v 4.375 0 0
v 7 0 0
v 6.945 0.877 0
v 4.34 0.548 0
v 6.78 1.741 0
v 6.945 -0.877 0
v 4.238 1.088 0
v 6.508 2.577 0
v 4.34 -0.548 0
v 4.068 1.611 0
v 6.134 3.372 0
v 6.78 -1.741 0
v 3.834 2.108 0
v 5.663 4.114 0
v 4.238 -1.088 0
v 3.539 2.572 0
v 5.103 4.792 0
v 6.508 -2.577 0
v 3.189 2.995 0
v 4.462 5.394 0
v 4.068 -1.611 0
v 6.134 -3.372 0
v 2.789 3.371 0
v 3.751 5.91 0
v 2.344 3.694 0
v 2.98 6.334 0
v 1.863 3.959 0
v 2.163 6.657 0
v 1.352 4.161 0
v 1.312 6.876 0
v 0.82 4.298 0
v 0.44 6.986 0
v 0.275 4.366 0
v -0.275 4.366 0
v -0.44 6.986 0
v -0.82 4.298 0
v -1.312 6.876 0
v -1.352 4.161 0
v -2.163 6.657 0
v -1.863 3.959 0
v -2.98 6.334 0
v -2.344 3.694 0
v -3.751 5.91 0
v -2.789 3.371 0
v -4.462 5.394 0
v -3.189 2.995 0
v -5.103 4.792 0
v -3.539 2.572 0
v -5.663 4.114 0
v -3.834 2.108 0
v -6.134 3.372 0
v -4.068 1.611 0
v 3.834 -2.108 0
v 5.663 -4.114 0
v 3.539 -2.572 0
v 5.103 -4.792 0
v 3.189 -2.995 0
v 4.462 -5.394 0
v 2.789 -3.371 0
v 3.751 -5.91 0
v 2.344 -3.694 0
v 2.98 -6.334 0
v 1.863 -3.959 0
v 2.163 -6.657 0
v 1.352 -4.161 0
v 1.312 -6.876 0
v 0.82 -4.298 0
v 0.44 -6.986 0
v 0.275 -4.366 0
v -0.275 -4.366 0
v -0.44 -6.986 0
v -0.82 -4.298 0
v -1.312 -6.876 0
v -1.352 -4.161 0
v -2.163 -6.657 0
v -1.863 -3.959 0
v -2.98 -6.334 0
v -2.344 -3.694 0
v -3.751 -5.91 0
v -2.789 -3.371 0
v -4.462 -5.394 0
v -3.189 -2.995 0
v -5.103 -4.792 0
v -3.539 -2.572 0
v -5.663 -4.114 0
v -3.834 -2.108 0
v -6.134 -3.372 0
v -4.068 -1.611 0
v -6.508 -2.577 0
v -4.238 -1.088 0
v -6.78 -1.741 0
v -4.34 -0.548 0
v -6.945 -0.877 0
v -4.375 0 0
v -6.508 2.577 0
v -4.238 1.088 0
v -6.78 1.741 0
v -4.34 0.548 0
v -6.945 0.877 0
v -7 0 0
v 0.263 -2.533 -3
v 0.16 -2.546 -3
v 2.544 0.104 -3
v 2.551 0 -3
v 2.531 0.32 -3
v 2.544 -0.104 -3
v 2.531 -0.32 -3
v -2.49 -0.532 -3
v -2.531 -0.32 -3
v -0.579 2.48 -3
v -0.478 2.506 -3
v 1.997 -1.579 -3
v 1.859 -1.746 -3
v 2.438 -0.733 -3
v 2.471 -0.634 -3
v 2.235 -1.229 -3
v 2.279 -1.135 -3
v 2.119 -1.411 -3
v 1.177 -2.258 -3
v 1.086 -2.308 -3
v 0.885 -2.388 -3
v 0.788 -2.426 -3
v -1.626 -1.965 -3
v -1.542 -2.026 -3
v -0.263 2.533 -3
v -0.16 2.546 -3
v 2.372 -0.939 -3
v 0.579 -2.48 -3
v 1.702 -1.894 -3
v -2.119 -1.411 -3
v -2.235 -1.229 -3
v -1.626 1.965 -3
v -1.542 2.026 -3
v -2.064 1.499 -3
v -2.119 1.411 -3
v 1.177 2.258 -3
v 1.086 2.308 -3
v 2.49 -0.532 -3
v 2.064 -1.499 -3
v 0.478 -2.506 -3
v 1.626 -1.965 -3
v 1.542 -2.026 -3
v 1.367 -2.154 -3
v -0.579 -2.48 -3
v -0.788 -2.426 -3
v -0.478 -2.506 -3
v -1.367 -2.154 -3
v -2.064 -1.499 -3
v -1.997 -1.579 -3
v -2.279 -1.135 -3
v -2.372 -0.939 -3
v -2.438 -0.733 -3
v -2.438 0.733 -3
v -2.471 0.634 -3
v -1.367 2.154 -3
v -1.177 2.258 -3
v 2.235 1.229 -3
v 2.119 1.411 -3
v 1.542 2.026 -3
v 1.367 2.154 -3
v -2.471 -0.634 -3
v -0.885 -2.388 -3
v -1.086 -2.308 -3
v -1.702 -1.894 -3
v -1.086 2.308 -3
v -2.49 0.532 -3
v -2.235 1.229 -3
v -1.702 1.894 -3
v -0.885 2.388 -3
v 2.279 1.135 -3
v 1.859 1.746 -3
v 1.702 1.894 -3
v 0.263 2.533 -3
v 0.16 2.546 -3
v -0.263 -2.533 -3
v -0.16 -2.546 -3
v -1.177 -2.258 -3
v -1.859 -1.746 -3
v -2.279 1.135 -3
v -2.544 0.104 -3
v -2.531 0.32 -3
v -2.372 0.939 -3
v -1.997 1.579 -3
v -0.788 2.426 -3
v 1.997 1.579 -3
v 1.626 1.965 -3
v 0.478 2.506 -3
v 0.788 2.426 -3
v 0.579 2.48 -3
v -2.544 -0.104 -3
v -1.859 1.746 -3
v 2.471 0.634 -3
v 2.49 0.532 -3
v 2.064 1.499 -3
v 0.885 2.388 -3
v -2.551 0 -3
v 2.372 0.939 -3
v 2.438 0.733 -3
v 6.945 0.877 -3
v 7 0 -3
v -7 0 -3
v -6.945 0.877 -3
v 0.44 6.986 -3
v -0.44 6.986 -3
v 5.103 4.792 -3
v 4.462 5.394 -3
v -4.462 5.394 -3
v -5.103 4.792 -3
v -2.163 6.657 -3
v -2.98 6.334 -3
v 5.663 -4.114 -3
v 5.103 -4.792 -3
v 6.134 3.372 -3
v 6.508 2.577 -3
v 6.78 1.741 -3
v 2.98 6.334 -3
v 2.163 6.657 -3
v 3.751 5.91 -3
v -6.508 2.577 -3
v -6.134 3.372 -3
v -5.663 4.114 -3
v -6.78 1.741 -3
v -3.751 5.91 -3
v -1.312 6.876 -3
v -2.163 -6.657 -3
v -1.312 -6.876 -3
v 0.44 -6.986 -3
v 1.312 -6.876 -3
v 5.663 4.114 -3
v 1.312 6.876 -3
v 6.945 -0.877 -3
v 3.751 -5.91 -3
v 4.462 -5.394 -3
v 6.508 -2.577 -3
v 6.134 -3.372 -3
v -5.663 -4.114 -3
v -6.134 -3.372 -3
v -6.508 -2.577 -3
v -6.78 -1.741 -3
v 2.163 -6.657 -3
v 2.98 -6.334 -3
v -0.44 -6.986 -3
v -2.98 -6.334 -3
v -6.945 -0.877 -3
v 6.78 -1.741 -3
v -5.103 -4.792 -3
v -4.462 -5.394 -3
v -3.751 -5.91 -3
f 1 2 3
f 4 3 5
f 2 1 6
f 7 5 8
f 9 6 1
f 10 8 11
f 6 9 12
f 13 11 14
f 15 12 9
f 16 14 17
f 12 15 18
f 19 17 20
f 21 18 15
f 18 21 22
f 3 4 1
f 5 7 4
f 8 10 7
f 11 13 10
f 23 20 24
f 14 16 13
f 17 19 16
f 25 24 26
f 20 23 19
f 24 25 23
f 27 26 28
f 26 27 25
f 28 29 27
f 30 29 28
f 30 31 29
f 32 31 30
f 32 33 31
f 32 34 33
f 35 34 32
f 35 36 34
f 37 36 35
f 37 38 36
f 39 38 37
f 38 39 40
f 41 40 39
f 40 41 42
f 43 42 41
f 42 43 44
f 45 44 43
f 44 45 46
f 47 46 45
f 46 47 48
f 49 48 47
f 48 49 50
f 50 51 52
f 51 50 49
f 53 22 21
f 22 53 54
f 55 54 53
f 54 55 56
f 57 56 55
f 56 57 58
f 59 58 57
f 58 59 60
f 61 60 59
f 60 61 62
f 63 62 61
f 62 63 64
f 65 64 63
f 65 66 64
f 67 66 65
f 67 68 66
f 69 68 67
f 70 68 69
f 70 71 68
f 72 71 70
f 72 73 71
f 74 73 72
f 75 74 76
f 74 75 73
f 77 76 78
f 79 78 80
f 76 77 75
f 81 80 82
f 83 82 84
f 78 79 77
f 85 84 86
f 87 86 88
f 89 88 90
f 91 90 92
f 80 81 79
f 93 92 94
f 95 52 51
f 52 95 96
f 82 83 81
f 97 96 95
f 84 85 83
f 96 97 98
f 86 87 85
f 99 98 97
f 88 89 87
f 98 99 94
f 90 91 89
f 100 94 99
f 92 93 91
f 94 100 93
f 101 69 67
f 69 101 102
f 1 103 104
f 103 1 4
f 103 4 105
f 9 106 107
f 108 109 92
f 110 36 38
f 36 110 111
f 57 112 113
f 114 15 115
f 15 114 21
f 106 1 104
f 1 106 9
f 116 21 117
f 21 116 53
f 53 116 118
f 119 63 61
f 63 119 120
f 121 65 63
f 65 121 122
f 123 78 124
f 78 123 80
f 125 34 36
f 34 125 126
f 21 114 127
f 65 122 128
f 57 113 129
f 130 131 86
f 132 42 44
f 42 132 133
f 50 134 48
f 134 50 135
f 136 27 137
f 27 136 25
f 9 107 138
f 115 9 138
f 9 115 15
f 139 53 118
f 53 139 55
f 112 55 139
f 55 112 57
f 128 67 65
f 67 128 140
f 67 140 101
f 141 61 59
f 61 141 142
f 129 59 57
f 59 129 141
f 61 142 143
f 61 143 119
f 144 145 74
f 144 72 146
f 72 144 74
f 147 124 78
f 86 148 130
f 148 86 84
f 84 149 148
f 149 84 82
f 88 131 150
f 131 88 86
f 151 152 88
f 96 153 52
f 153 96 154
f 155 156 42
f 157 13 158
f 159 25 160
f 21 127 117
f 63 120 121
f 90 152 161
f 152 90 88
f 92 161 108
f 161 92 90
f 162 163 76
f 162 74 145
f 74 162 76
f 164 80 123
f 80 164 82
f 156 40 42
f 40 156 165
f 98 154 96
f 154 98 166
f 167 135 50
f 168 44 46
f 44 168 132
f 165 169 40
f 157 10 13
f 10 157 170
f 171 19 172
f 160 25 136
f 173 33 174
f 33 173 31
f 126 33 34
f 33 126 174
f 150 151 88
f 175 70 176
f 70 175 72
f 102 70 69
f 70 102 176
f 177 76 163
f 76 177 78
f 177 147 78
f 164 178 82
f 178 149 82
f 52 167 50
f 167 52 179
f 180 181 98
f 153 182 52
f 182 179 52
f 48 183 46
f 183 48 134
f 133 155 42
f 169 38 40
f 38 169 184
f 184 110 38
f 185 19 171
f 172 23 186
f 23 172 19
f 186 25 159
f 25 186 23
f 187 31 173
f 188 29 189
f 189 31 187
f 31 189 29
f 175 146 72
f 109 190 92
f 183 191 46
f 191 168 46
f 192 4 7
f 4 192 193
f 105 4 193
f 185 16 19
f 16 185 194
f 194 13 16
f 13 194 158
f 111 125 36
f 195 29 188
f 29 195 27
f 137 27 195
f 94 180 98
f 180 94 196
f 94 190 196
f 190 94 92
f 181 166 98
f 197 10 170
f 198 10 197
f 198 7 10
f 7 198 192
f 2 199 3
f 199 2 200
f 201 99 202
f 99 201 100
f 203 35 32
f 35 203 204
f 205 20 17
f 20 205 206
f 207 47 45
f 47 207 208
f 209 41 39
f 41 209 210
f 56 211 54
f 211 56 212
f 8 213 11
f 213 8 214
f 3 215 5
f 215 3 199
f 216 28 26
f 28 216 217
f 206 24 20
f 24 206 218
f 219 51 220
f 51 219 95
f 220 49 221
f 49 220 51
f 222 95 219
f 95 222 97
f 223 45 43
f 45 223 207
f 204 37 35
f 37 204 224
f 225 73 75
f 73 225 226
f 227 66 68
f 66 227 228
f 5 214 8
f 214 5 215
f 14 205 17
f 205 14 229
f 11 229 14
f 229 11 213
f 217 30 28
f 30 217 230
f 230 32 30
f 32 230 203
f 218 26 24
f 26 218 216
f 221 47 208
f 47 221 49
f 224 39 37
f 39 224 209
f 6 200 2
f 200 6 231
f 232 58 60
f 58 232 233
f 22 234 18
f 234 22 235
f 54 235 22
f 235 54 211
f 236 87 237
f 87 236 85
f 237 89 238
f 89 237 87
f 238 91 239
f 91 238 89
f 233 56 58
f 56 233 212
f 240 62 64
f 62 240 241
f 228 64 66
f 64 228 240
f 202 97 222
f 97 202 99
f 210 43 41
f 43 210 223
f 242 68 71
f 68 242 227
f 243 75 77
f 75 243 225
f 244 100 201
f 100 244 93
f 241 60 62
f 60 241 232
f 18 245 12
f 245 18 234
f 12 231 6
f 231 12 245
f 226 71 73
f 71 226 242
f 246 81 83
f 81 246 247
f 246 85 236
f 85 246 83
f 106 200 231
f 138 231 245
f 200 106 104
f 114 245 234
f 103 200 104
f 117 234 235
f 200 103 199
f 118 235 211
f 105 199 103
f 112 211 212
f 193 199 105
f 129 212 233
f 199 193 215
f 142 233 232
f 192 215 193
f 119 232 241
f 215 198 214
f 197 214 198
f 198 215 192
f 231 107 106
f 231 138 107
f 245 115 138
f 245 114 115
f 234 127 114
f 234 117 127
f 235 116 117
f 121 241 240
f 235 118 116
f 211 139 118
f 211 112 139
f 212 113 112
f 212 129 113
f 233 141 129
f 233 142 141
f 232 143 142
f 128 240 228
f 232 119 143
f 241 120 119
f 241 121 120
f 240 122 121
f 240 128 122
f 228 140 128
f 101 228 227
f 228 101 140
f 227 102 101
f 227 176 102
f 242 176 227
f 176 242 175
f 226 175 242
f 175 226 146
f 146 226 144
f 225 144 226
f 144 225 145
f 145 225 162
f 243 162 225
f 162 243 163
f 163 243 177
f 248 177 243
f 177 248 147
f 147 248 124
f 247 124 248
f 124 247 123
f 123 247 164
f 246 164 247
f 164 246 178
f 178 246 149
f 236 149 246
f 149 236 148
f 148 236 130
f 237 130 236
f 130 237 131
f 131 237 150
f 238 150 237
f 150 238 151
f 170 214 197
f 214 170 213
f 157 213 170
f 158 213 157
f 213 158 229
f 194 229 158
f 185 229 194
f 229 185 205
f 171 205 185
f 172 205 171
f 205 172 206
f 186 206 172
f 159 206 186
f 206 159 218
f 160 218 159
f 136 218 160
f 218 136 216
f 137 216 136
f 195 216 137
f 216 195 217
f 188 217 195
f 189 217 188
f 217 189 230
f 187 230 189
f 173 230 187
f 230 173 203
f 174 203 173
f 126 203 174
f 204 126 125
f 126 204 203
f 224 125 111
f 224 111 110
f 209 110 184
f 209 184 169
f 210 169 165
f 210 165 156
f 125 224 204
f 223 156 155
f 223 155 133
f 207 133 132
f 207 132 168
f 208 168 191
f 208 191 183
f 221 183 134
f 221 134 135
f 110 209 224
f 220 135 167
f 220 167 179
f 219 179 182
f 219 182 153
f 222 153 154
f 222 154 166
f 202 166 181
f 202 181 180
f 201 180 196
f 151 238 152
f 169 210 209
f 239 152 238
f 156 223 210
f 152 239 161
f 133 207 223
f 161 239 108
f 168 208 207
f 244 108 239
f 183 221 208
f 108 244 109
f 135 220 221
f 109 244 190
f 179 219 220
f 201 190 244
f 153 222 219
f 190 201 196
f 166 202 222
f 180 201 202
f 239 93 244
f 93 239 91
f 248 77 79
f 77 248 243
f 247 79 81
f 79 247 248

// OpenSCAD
$fn = 50;


difference() {
	union() {
		translate(v = [0, 0, -3.0000000000]) {
			cylinder(h = 3, r = 7.0000000000);
		}
	}
	union() {
		translate(v = [0, 0, 0]) {
			rotate(a = [0, 0, 0]) {
				difference() {
					union() {
						translate(v = [0, 0, -6.0000000000]) {
							cylinder(h = 6, r = 2.0000000000);
						}
						translate(v = [0, 0, -3.7000000000]) {
							cylinder(h = 3.7000000000, r1 = 2.1250000000, r2 = 4.3750000000);
						}
						translate(v = [0, 0, -6.0000000000]) {
							cylinder(h = 6, r = 2.1250000000);
						}
						translate(v = [0, 0, -6.0000000000]) {
							cylinder(h = 6, r = 2.0000000000);
						}
					}
					union();
				}
			}
		}
	}
}
